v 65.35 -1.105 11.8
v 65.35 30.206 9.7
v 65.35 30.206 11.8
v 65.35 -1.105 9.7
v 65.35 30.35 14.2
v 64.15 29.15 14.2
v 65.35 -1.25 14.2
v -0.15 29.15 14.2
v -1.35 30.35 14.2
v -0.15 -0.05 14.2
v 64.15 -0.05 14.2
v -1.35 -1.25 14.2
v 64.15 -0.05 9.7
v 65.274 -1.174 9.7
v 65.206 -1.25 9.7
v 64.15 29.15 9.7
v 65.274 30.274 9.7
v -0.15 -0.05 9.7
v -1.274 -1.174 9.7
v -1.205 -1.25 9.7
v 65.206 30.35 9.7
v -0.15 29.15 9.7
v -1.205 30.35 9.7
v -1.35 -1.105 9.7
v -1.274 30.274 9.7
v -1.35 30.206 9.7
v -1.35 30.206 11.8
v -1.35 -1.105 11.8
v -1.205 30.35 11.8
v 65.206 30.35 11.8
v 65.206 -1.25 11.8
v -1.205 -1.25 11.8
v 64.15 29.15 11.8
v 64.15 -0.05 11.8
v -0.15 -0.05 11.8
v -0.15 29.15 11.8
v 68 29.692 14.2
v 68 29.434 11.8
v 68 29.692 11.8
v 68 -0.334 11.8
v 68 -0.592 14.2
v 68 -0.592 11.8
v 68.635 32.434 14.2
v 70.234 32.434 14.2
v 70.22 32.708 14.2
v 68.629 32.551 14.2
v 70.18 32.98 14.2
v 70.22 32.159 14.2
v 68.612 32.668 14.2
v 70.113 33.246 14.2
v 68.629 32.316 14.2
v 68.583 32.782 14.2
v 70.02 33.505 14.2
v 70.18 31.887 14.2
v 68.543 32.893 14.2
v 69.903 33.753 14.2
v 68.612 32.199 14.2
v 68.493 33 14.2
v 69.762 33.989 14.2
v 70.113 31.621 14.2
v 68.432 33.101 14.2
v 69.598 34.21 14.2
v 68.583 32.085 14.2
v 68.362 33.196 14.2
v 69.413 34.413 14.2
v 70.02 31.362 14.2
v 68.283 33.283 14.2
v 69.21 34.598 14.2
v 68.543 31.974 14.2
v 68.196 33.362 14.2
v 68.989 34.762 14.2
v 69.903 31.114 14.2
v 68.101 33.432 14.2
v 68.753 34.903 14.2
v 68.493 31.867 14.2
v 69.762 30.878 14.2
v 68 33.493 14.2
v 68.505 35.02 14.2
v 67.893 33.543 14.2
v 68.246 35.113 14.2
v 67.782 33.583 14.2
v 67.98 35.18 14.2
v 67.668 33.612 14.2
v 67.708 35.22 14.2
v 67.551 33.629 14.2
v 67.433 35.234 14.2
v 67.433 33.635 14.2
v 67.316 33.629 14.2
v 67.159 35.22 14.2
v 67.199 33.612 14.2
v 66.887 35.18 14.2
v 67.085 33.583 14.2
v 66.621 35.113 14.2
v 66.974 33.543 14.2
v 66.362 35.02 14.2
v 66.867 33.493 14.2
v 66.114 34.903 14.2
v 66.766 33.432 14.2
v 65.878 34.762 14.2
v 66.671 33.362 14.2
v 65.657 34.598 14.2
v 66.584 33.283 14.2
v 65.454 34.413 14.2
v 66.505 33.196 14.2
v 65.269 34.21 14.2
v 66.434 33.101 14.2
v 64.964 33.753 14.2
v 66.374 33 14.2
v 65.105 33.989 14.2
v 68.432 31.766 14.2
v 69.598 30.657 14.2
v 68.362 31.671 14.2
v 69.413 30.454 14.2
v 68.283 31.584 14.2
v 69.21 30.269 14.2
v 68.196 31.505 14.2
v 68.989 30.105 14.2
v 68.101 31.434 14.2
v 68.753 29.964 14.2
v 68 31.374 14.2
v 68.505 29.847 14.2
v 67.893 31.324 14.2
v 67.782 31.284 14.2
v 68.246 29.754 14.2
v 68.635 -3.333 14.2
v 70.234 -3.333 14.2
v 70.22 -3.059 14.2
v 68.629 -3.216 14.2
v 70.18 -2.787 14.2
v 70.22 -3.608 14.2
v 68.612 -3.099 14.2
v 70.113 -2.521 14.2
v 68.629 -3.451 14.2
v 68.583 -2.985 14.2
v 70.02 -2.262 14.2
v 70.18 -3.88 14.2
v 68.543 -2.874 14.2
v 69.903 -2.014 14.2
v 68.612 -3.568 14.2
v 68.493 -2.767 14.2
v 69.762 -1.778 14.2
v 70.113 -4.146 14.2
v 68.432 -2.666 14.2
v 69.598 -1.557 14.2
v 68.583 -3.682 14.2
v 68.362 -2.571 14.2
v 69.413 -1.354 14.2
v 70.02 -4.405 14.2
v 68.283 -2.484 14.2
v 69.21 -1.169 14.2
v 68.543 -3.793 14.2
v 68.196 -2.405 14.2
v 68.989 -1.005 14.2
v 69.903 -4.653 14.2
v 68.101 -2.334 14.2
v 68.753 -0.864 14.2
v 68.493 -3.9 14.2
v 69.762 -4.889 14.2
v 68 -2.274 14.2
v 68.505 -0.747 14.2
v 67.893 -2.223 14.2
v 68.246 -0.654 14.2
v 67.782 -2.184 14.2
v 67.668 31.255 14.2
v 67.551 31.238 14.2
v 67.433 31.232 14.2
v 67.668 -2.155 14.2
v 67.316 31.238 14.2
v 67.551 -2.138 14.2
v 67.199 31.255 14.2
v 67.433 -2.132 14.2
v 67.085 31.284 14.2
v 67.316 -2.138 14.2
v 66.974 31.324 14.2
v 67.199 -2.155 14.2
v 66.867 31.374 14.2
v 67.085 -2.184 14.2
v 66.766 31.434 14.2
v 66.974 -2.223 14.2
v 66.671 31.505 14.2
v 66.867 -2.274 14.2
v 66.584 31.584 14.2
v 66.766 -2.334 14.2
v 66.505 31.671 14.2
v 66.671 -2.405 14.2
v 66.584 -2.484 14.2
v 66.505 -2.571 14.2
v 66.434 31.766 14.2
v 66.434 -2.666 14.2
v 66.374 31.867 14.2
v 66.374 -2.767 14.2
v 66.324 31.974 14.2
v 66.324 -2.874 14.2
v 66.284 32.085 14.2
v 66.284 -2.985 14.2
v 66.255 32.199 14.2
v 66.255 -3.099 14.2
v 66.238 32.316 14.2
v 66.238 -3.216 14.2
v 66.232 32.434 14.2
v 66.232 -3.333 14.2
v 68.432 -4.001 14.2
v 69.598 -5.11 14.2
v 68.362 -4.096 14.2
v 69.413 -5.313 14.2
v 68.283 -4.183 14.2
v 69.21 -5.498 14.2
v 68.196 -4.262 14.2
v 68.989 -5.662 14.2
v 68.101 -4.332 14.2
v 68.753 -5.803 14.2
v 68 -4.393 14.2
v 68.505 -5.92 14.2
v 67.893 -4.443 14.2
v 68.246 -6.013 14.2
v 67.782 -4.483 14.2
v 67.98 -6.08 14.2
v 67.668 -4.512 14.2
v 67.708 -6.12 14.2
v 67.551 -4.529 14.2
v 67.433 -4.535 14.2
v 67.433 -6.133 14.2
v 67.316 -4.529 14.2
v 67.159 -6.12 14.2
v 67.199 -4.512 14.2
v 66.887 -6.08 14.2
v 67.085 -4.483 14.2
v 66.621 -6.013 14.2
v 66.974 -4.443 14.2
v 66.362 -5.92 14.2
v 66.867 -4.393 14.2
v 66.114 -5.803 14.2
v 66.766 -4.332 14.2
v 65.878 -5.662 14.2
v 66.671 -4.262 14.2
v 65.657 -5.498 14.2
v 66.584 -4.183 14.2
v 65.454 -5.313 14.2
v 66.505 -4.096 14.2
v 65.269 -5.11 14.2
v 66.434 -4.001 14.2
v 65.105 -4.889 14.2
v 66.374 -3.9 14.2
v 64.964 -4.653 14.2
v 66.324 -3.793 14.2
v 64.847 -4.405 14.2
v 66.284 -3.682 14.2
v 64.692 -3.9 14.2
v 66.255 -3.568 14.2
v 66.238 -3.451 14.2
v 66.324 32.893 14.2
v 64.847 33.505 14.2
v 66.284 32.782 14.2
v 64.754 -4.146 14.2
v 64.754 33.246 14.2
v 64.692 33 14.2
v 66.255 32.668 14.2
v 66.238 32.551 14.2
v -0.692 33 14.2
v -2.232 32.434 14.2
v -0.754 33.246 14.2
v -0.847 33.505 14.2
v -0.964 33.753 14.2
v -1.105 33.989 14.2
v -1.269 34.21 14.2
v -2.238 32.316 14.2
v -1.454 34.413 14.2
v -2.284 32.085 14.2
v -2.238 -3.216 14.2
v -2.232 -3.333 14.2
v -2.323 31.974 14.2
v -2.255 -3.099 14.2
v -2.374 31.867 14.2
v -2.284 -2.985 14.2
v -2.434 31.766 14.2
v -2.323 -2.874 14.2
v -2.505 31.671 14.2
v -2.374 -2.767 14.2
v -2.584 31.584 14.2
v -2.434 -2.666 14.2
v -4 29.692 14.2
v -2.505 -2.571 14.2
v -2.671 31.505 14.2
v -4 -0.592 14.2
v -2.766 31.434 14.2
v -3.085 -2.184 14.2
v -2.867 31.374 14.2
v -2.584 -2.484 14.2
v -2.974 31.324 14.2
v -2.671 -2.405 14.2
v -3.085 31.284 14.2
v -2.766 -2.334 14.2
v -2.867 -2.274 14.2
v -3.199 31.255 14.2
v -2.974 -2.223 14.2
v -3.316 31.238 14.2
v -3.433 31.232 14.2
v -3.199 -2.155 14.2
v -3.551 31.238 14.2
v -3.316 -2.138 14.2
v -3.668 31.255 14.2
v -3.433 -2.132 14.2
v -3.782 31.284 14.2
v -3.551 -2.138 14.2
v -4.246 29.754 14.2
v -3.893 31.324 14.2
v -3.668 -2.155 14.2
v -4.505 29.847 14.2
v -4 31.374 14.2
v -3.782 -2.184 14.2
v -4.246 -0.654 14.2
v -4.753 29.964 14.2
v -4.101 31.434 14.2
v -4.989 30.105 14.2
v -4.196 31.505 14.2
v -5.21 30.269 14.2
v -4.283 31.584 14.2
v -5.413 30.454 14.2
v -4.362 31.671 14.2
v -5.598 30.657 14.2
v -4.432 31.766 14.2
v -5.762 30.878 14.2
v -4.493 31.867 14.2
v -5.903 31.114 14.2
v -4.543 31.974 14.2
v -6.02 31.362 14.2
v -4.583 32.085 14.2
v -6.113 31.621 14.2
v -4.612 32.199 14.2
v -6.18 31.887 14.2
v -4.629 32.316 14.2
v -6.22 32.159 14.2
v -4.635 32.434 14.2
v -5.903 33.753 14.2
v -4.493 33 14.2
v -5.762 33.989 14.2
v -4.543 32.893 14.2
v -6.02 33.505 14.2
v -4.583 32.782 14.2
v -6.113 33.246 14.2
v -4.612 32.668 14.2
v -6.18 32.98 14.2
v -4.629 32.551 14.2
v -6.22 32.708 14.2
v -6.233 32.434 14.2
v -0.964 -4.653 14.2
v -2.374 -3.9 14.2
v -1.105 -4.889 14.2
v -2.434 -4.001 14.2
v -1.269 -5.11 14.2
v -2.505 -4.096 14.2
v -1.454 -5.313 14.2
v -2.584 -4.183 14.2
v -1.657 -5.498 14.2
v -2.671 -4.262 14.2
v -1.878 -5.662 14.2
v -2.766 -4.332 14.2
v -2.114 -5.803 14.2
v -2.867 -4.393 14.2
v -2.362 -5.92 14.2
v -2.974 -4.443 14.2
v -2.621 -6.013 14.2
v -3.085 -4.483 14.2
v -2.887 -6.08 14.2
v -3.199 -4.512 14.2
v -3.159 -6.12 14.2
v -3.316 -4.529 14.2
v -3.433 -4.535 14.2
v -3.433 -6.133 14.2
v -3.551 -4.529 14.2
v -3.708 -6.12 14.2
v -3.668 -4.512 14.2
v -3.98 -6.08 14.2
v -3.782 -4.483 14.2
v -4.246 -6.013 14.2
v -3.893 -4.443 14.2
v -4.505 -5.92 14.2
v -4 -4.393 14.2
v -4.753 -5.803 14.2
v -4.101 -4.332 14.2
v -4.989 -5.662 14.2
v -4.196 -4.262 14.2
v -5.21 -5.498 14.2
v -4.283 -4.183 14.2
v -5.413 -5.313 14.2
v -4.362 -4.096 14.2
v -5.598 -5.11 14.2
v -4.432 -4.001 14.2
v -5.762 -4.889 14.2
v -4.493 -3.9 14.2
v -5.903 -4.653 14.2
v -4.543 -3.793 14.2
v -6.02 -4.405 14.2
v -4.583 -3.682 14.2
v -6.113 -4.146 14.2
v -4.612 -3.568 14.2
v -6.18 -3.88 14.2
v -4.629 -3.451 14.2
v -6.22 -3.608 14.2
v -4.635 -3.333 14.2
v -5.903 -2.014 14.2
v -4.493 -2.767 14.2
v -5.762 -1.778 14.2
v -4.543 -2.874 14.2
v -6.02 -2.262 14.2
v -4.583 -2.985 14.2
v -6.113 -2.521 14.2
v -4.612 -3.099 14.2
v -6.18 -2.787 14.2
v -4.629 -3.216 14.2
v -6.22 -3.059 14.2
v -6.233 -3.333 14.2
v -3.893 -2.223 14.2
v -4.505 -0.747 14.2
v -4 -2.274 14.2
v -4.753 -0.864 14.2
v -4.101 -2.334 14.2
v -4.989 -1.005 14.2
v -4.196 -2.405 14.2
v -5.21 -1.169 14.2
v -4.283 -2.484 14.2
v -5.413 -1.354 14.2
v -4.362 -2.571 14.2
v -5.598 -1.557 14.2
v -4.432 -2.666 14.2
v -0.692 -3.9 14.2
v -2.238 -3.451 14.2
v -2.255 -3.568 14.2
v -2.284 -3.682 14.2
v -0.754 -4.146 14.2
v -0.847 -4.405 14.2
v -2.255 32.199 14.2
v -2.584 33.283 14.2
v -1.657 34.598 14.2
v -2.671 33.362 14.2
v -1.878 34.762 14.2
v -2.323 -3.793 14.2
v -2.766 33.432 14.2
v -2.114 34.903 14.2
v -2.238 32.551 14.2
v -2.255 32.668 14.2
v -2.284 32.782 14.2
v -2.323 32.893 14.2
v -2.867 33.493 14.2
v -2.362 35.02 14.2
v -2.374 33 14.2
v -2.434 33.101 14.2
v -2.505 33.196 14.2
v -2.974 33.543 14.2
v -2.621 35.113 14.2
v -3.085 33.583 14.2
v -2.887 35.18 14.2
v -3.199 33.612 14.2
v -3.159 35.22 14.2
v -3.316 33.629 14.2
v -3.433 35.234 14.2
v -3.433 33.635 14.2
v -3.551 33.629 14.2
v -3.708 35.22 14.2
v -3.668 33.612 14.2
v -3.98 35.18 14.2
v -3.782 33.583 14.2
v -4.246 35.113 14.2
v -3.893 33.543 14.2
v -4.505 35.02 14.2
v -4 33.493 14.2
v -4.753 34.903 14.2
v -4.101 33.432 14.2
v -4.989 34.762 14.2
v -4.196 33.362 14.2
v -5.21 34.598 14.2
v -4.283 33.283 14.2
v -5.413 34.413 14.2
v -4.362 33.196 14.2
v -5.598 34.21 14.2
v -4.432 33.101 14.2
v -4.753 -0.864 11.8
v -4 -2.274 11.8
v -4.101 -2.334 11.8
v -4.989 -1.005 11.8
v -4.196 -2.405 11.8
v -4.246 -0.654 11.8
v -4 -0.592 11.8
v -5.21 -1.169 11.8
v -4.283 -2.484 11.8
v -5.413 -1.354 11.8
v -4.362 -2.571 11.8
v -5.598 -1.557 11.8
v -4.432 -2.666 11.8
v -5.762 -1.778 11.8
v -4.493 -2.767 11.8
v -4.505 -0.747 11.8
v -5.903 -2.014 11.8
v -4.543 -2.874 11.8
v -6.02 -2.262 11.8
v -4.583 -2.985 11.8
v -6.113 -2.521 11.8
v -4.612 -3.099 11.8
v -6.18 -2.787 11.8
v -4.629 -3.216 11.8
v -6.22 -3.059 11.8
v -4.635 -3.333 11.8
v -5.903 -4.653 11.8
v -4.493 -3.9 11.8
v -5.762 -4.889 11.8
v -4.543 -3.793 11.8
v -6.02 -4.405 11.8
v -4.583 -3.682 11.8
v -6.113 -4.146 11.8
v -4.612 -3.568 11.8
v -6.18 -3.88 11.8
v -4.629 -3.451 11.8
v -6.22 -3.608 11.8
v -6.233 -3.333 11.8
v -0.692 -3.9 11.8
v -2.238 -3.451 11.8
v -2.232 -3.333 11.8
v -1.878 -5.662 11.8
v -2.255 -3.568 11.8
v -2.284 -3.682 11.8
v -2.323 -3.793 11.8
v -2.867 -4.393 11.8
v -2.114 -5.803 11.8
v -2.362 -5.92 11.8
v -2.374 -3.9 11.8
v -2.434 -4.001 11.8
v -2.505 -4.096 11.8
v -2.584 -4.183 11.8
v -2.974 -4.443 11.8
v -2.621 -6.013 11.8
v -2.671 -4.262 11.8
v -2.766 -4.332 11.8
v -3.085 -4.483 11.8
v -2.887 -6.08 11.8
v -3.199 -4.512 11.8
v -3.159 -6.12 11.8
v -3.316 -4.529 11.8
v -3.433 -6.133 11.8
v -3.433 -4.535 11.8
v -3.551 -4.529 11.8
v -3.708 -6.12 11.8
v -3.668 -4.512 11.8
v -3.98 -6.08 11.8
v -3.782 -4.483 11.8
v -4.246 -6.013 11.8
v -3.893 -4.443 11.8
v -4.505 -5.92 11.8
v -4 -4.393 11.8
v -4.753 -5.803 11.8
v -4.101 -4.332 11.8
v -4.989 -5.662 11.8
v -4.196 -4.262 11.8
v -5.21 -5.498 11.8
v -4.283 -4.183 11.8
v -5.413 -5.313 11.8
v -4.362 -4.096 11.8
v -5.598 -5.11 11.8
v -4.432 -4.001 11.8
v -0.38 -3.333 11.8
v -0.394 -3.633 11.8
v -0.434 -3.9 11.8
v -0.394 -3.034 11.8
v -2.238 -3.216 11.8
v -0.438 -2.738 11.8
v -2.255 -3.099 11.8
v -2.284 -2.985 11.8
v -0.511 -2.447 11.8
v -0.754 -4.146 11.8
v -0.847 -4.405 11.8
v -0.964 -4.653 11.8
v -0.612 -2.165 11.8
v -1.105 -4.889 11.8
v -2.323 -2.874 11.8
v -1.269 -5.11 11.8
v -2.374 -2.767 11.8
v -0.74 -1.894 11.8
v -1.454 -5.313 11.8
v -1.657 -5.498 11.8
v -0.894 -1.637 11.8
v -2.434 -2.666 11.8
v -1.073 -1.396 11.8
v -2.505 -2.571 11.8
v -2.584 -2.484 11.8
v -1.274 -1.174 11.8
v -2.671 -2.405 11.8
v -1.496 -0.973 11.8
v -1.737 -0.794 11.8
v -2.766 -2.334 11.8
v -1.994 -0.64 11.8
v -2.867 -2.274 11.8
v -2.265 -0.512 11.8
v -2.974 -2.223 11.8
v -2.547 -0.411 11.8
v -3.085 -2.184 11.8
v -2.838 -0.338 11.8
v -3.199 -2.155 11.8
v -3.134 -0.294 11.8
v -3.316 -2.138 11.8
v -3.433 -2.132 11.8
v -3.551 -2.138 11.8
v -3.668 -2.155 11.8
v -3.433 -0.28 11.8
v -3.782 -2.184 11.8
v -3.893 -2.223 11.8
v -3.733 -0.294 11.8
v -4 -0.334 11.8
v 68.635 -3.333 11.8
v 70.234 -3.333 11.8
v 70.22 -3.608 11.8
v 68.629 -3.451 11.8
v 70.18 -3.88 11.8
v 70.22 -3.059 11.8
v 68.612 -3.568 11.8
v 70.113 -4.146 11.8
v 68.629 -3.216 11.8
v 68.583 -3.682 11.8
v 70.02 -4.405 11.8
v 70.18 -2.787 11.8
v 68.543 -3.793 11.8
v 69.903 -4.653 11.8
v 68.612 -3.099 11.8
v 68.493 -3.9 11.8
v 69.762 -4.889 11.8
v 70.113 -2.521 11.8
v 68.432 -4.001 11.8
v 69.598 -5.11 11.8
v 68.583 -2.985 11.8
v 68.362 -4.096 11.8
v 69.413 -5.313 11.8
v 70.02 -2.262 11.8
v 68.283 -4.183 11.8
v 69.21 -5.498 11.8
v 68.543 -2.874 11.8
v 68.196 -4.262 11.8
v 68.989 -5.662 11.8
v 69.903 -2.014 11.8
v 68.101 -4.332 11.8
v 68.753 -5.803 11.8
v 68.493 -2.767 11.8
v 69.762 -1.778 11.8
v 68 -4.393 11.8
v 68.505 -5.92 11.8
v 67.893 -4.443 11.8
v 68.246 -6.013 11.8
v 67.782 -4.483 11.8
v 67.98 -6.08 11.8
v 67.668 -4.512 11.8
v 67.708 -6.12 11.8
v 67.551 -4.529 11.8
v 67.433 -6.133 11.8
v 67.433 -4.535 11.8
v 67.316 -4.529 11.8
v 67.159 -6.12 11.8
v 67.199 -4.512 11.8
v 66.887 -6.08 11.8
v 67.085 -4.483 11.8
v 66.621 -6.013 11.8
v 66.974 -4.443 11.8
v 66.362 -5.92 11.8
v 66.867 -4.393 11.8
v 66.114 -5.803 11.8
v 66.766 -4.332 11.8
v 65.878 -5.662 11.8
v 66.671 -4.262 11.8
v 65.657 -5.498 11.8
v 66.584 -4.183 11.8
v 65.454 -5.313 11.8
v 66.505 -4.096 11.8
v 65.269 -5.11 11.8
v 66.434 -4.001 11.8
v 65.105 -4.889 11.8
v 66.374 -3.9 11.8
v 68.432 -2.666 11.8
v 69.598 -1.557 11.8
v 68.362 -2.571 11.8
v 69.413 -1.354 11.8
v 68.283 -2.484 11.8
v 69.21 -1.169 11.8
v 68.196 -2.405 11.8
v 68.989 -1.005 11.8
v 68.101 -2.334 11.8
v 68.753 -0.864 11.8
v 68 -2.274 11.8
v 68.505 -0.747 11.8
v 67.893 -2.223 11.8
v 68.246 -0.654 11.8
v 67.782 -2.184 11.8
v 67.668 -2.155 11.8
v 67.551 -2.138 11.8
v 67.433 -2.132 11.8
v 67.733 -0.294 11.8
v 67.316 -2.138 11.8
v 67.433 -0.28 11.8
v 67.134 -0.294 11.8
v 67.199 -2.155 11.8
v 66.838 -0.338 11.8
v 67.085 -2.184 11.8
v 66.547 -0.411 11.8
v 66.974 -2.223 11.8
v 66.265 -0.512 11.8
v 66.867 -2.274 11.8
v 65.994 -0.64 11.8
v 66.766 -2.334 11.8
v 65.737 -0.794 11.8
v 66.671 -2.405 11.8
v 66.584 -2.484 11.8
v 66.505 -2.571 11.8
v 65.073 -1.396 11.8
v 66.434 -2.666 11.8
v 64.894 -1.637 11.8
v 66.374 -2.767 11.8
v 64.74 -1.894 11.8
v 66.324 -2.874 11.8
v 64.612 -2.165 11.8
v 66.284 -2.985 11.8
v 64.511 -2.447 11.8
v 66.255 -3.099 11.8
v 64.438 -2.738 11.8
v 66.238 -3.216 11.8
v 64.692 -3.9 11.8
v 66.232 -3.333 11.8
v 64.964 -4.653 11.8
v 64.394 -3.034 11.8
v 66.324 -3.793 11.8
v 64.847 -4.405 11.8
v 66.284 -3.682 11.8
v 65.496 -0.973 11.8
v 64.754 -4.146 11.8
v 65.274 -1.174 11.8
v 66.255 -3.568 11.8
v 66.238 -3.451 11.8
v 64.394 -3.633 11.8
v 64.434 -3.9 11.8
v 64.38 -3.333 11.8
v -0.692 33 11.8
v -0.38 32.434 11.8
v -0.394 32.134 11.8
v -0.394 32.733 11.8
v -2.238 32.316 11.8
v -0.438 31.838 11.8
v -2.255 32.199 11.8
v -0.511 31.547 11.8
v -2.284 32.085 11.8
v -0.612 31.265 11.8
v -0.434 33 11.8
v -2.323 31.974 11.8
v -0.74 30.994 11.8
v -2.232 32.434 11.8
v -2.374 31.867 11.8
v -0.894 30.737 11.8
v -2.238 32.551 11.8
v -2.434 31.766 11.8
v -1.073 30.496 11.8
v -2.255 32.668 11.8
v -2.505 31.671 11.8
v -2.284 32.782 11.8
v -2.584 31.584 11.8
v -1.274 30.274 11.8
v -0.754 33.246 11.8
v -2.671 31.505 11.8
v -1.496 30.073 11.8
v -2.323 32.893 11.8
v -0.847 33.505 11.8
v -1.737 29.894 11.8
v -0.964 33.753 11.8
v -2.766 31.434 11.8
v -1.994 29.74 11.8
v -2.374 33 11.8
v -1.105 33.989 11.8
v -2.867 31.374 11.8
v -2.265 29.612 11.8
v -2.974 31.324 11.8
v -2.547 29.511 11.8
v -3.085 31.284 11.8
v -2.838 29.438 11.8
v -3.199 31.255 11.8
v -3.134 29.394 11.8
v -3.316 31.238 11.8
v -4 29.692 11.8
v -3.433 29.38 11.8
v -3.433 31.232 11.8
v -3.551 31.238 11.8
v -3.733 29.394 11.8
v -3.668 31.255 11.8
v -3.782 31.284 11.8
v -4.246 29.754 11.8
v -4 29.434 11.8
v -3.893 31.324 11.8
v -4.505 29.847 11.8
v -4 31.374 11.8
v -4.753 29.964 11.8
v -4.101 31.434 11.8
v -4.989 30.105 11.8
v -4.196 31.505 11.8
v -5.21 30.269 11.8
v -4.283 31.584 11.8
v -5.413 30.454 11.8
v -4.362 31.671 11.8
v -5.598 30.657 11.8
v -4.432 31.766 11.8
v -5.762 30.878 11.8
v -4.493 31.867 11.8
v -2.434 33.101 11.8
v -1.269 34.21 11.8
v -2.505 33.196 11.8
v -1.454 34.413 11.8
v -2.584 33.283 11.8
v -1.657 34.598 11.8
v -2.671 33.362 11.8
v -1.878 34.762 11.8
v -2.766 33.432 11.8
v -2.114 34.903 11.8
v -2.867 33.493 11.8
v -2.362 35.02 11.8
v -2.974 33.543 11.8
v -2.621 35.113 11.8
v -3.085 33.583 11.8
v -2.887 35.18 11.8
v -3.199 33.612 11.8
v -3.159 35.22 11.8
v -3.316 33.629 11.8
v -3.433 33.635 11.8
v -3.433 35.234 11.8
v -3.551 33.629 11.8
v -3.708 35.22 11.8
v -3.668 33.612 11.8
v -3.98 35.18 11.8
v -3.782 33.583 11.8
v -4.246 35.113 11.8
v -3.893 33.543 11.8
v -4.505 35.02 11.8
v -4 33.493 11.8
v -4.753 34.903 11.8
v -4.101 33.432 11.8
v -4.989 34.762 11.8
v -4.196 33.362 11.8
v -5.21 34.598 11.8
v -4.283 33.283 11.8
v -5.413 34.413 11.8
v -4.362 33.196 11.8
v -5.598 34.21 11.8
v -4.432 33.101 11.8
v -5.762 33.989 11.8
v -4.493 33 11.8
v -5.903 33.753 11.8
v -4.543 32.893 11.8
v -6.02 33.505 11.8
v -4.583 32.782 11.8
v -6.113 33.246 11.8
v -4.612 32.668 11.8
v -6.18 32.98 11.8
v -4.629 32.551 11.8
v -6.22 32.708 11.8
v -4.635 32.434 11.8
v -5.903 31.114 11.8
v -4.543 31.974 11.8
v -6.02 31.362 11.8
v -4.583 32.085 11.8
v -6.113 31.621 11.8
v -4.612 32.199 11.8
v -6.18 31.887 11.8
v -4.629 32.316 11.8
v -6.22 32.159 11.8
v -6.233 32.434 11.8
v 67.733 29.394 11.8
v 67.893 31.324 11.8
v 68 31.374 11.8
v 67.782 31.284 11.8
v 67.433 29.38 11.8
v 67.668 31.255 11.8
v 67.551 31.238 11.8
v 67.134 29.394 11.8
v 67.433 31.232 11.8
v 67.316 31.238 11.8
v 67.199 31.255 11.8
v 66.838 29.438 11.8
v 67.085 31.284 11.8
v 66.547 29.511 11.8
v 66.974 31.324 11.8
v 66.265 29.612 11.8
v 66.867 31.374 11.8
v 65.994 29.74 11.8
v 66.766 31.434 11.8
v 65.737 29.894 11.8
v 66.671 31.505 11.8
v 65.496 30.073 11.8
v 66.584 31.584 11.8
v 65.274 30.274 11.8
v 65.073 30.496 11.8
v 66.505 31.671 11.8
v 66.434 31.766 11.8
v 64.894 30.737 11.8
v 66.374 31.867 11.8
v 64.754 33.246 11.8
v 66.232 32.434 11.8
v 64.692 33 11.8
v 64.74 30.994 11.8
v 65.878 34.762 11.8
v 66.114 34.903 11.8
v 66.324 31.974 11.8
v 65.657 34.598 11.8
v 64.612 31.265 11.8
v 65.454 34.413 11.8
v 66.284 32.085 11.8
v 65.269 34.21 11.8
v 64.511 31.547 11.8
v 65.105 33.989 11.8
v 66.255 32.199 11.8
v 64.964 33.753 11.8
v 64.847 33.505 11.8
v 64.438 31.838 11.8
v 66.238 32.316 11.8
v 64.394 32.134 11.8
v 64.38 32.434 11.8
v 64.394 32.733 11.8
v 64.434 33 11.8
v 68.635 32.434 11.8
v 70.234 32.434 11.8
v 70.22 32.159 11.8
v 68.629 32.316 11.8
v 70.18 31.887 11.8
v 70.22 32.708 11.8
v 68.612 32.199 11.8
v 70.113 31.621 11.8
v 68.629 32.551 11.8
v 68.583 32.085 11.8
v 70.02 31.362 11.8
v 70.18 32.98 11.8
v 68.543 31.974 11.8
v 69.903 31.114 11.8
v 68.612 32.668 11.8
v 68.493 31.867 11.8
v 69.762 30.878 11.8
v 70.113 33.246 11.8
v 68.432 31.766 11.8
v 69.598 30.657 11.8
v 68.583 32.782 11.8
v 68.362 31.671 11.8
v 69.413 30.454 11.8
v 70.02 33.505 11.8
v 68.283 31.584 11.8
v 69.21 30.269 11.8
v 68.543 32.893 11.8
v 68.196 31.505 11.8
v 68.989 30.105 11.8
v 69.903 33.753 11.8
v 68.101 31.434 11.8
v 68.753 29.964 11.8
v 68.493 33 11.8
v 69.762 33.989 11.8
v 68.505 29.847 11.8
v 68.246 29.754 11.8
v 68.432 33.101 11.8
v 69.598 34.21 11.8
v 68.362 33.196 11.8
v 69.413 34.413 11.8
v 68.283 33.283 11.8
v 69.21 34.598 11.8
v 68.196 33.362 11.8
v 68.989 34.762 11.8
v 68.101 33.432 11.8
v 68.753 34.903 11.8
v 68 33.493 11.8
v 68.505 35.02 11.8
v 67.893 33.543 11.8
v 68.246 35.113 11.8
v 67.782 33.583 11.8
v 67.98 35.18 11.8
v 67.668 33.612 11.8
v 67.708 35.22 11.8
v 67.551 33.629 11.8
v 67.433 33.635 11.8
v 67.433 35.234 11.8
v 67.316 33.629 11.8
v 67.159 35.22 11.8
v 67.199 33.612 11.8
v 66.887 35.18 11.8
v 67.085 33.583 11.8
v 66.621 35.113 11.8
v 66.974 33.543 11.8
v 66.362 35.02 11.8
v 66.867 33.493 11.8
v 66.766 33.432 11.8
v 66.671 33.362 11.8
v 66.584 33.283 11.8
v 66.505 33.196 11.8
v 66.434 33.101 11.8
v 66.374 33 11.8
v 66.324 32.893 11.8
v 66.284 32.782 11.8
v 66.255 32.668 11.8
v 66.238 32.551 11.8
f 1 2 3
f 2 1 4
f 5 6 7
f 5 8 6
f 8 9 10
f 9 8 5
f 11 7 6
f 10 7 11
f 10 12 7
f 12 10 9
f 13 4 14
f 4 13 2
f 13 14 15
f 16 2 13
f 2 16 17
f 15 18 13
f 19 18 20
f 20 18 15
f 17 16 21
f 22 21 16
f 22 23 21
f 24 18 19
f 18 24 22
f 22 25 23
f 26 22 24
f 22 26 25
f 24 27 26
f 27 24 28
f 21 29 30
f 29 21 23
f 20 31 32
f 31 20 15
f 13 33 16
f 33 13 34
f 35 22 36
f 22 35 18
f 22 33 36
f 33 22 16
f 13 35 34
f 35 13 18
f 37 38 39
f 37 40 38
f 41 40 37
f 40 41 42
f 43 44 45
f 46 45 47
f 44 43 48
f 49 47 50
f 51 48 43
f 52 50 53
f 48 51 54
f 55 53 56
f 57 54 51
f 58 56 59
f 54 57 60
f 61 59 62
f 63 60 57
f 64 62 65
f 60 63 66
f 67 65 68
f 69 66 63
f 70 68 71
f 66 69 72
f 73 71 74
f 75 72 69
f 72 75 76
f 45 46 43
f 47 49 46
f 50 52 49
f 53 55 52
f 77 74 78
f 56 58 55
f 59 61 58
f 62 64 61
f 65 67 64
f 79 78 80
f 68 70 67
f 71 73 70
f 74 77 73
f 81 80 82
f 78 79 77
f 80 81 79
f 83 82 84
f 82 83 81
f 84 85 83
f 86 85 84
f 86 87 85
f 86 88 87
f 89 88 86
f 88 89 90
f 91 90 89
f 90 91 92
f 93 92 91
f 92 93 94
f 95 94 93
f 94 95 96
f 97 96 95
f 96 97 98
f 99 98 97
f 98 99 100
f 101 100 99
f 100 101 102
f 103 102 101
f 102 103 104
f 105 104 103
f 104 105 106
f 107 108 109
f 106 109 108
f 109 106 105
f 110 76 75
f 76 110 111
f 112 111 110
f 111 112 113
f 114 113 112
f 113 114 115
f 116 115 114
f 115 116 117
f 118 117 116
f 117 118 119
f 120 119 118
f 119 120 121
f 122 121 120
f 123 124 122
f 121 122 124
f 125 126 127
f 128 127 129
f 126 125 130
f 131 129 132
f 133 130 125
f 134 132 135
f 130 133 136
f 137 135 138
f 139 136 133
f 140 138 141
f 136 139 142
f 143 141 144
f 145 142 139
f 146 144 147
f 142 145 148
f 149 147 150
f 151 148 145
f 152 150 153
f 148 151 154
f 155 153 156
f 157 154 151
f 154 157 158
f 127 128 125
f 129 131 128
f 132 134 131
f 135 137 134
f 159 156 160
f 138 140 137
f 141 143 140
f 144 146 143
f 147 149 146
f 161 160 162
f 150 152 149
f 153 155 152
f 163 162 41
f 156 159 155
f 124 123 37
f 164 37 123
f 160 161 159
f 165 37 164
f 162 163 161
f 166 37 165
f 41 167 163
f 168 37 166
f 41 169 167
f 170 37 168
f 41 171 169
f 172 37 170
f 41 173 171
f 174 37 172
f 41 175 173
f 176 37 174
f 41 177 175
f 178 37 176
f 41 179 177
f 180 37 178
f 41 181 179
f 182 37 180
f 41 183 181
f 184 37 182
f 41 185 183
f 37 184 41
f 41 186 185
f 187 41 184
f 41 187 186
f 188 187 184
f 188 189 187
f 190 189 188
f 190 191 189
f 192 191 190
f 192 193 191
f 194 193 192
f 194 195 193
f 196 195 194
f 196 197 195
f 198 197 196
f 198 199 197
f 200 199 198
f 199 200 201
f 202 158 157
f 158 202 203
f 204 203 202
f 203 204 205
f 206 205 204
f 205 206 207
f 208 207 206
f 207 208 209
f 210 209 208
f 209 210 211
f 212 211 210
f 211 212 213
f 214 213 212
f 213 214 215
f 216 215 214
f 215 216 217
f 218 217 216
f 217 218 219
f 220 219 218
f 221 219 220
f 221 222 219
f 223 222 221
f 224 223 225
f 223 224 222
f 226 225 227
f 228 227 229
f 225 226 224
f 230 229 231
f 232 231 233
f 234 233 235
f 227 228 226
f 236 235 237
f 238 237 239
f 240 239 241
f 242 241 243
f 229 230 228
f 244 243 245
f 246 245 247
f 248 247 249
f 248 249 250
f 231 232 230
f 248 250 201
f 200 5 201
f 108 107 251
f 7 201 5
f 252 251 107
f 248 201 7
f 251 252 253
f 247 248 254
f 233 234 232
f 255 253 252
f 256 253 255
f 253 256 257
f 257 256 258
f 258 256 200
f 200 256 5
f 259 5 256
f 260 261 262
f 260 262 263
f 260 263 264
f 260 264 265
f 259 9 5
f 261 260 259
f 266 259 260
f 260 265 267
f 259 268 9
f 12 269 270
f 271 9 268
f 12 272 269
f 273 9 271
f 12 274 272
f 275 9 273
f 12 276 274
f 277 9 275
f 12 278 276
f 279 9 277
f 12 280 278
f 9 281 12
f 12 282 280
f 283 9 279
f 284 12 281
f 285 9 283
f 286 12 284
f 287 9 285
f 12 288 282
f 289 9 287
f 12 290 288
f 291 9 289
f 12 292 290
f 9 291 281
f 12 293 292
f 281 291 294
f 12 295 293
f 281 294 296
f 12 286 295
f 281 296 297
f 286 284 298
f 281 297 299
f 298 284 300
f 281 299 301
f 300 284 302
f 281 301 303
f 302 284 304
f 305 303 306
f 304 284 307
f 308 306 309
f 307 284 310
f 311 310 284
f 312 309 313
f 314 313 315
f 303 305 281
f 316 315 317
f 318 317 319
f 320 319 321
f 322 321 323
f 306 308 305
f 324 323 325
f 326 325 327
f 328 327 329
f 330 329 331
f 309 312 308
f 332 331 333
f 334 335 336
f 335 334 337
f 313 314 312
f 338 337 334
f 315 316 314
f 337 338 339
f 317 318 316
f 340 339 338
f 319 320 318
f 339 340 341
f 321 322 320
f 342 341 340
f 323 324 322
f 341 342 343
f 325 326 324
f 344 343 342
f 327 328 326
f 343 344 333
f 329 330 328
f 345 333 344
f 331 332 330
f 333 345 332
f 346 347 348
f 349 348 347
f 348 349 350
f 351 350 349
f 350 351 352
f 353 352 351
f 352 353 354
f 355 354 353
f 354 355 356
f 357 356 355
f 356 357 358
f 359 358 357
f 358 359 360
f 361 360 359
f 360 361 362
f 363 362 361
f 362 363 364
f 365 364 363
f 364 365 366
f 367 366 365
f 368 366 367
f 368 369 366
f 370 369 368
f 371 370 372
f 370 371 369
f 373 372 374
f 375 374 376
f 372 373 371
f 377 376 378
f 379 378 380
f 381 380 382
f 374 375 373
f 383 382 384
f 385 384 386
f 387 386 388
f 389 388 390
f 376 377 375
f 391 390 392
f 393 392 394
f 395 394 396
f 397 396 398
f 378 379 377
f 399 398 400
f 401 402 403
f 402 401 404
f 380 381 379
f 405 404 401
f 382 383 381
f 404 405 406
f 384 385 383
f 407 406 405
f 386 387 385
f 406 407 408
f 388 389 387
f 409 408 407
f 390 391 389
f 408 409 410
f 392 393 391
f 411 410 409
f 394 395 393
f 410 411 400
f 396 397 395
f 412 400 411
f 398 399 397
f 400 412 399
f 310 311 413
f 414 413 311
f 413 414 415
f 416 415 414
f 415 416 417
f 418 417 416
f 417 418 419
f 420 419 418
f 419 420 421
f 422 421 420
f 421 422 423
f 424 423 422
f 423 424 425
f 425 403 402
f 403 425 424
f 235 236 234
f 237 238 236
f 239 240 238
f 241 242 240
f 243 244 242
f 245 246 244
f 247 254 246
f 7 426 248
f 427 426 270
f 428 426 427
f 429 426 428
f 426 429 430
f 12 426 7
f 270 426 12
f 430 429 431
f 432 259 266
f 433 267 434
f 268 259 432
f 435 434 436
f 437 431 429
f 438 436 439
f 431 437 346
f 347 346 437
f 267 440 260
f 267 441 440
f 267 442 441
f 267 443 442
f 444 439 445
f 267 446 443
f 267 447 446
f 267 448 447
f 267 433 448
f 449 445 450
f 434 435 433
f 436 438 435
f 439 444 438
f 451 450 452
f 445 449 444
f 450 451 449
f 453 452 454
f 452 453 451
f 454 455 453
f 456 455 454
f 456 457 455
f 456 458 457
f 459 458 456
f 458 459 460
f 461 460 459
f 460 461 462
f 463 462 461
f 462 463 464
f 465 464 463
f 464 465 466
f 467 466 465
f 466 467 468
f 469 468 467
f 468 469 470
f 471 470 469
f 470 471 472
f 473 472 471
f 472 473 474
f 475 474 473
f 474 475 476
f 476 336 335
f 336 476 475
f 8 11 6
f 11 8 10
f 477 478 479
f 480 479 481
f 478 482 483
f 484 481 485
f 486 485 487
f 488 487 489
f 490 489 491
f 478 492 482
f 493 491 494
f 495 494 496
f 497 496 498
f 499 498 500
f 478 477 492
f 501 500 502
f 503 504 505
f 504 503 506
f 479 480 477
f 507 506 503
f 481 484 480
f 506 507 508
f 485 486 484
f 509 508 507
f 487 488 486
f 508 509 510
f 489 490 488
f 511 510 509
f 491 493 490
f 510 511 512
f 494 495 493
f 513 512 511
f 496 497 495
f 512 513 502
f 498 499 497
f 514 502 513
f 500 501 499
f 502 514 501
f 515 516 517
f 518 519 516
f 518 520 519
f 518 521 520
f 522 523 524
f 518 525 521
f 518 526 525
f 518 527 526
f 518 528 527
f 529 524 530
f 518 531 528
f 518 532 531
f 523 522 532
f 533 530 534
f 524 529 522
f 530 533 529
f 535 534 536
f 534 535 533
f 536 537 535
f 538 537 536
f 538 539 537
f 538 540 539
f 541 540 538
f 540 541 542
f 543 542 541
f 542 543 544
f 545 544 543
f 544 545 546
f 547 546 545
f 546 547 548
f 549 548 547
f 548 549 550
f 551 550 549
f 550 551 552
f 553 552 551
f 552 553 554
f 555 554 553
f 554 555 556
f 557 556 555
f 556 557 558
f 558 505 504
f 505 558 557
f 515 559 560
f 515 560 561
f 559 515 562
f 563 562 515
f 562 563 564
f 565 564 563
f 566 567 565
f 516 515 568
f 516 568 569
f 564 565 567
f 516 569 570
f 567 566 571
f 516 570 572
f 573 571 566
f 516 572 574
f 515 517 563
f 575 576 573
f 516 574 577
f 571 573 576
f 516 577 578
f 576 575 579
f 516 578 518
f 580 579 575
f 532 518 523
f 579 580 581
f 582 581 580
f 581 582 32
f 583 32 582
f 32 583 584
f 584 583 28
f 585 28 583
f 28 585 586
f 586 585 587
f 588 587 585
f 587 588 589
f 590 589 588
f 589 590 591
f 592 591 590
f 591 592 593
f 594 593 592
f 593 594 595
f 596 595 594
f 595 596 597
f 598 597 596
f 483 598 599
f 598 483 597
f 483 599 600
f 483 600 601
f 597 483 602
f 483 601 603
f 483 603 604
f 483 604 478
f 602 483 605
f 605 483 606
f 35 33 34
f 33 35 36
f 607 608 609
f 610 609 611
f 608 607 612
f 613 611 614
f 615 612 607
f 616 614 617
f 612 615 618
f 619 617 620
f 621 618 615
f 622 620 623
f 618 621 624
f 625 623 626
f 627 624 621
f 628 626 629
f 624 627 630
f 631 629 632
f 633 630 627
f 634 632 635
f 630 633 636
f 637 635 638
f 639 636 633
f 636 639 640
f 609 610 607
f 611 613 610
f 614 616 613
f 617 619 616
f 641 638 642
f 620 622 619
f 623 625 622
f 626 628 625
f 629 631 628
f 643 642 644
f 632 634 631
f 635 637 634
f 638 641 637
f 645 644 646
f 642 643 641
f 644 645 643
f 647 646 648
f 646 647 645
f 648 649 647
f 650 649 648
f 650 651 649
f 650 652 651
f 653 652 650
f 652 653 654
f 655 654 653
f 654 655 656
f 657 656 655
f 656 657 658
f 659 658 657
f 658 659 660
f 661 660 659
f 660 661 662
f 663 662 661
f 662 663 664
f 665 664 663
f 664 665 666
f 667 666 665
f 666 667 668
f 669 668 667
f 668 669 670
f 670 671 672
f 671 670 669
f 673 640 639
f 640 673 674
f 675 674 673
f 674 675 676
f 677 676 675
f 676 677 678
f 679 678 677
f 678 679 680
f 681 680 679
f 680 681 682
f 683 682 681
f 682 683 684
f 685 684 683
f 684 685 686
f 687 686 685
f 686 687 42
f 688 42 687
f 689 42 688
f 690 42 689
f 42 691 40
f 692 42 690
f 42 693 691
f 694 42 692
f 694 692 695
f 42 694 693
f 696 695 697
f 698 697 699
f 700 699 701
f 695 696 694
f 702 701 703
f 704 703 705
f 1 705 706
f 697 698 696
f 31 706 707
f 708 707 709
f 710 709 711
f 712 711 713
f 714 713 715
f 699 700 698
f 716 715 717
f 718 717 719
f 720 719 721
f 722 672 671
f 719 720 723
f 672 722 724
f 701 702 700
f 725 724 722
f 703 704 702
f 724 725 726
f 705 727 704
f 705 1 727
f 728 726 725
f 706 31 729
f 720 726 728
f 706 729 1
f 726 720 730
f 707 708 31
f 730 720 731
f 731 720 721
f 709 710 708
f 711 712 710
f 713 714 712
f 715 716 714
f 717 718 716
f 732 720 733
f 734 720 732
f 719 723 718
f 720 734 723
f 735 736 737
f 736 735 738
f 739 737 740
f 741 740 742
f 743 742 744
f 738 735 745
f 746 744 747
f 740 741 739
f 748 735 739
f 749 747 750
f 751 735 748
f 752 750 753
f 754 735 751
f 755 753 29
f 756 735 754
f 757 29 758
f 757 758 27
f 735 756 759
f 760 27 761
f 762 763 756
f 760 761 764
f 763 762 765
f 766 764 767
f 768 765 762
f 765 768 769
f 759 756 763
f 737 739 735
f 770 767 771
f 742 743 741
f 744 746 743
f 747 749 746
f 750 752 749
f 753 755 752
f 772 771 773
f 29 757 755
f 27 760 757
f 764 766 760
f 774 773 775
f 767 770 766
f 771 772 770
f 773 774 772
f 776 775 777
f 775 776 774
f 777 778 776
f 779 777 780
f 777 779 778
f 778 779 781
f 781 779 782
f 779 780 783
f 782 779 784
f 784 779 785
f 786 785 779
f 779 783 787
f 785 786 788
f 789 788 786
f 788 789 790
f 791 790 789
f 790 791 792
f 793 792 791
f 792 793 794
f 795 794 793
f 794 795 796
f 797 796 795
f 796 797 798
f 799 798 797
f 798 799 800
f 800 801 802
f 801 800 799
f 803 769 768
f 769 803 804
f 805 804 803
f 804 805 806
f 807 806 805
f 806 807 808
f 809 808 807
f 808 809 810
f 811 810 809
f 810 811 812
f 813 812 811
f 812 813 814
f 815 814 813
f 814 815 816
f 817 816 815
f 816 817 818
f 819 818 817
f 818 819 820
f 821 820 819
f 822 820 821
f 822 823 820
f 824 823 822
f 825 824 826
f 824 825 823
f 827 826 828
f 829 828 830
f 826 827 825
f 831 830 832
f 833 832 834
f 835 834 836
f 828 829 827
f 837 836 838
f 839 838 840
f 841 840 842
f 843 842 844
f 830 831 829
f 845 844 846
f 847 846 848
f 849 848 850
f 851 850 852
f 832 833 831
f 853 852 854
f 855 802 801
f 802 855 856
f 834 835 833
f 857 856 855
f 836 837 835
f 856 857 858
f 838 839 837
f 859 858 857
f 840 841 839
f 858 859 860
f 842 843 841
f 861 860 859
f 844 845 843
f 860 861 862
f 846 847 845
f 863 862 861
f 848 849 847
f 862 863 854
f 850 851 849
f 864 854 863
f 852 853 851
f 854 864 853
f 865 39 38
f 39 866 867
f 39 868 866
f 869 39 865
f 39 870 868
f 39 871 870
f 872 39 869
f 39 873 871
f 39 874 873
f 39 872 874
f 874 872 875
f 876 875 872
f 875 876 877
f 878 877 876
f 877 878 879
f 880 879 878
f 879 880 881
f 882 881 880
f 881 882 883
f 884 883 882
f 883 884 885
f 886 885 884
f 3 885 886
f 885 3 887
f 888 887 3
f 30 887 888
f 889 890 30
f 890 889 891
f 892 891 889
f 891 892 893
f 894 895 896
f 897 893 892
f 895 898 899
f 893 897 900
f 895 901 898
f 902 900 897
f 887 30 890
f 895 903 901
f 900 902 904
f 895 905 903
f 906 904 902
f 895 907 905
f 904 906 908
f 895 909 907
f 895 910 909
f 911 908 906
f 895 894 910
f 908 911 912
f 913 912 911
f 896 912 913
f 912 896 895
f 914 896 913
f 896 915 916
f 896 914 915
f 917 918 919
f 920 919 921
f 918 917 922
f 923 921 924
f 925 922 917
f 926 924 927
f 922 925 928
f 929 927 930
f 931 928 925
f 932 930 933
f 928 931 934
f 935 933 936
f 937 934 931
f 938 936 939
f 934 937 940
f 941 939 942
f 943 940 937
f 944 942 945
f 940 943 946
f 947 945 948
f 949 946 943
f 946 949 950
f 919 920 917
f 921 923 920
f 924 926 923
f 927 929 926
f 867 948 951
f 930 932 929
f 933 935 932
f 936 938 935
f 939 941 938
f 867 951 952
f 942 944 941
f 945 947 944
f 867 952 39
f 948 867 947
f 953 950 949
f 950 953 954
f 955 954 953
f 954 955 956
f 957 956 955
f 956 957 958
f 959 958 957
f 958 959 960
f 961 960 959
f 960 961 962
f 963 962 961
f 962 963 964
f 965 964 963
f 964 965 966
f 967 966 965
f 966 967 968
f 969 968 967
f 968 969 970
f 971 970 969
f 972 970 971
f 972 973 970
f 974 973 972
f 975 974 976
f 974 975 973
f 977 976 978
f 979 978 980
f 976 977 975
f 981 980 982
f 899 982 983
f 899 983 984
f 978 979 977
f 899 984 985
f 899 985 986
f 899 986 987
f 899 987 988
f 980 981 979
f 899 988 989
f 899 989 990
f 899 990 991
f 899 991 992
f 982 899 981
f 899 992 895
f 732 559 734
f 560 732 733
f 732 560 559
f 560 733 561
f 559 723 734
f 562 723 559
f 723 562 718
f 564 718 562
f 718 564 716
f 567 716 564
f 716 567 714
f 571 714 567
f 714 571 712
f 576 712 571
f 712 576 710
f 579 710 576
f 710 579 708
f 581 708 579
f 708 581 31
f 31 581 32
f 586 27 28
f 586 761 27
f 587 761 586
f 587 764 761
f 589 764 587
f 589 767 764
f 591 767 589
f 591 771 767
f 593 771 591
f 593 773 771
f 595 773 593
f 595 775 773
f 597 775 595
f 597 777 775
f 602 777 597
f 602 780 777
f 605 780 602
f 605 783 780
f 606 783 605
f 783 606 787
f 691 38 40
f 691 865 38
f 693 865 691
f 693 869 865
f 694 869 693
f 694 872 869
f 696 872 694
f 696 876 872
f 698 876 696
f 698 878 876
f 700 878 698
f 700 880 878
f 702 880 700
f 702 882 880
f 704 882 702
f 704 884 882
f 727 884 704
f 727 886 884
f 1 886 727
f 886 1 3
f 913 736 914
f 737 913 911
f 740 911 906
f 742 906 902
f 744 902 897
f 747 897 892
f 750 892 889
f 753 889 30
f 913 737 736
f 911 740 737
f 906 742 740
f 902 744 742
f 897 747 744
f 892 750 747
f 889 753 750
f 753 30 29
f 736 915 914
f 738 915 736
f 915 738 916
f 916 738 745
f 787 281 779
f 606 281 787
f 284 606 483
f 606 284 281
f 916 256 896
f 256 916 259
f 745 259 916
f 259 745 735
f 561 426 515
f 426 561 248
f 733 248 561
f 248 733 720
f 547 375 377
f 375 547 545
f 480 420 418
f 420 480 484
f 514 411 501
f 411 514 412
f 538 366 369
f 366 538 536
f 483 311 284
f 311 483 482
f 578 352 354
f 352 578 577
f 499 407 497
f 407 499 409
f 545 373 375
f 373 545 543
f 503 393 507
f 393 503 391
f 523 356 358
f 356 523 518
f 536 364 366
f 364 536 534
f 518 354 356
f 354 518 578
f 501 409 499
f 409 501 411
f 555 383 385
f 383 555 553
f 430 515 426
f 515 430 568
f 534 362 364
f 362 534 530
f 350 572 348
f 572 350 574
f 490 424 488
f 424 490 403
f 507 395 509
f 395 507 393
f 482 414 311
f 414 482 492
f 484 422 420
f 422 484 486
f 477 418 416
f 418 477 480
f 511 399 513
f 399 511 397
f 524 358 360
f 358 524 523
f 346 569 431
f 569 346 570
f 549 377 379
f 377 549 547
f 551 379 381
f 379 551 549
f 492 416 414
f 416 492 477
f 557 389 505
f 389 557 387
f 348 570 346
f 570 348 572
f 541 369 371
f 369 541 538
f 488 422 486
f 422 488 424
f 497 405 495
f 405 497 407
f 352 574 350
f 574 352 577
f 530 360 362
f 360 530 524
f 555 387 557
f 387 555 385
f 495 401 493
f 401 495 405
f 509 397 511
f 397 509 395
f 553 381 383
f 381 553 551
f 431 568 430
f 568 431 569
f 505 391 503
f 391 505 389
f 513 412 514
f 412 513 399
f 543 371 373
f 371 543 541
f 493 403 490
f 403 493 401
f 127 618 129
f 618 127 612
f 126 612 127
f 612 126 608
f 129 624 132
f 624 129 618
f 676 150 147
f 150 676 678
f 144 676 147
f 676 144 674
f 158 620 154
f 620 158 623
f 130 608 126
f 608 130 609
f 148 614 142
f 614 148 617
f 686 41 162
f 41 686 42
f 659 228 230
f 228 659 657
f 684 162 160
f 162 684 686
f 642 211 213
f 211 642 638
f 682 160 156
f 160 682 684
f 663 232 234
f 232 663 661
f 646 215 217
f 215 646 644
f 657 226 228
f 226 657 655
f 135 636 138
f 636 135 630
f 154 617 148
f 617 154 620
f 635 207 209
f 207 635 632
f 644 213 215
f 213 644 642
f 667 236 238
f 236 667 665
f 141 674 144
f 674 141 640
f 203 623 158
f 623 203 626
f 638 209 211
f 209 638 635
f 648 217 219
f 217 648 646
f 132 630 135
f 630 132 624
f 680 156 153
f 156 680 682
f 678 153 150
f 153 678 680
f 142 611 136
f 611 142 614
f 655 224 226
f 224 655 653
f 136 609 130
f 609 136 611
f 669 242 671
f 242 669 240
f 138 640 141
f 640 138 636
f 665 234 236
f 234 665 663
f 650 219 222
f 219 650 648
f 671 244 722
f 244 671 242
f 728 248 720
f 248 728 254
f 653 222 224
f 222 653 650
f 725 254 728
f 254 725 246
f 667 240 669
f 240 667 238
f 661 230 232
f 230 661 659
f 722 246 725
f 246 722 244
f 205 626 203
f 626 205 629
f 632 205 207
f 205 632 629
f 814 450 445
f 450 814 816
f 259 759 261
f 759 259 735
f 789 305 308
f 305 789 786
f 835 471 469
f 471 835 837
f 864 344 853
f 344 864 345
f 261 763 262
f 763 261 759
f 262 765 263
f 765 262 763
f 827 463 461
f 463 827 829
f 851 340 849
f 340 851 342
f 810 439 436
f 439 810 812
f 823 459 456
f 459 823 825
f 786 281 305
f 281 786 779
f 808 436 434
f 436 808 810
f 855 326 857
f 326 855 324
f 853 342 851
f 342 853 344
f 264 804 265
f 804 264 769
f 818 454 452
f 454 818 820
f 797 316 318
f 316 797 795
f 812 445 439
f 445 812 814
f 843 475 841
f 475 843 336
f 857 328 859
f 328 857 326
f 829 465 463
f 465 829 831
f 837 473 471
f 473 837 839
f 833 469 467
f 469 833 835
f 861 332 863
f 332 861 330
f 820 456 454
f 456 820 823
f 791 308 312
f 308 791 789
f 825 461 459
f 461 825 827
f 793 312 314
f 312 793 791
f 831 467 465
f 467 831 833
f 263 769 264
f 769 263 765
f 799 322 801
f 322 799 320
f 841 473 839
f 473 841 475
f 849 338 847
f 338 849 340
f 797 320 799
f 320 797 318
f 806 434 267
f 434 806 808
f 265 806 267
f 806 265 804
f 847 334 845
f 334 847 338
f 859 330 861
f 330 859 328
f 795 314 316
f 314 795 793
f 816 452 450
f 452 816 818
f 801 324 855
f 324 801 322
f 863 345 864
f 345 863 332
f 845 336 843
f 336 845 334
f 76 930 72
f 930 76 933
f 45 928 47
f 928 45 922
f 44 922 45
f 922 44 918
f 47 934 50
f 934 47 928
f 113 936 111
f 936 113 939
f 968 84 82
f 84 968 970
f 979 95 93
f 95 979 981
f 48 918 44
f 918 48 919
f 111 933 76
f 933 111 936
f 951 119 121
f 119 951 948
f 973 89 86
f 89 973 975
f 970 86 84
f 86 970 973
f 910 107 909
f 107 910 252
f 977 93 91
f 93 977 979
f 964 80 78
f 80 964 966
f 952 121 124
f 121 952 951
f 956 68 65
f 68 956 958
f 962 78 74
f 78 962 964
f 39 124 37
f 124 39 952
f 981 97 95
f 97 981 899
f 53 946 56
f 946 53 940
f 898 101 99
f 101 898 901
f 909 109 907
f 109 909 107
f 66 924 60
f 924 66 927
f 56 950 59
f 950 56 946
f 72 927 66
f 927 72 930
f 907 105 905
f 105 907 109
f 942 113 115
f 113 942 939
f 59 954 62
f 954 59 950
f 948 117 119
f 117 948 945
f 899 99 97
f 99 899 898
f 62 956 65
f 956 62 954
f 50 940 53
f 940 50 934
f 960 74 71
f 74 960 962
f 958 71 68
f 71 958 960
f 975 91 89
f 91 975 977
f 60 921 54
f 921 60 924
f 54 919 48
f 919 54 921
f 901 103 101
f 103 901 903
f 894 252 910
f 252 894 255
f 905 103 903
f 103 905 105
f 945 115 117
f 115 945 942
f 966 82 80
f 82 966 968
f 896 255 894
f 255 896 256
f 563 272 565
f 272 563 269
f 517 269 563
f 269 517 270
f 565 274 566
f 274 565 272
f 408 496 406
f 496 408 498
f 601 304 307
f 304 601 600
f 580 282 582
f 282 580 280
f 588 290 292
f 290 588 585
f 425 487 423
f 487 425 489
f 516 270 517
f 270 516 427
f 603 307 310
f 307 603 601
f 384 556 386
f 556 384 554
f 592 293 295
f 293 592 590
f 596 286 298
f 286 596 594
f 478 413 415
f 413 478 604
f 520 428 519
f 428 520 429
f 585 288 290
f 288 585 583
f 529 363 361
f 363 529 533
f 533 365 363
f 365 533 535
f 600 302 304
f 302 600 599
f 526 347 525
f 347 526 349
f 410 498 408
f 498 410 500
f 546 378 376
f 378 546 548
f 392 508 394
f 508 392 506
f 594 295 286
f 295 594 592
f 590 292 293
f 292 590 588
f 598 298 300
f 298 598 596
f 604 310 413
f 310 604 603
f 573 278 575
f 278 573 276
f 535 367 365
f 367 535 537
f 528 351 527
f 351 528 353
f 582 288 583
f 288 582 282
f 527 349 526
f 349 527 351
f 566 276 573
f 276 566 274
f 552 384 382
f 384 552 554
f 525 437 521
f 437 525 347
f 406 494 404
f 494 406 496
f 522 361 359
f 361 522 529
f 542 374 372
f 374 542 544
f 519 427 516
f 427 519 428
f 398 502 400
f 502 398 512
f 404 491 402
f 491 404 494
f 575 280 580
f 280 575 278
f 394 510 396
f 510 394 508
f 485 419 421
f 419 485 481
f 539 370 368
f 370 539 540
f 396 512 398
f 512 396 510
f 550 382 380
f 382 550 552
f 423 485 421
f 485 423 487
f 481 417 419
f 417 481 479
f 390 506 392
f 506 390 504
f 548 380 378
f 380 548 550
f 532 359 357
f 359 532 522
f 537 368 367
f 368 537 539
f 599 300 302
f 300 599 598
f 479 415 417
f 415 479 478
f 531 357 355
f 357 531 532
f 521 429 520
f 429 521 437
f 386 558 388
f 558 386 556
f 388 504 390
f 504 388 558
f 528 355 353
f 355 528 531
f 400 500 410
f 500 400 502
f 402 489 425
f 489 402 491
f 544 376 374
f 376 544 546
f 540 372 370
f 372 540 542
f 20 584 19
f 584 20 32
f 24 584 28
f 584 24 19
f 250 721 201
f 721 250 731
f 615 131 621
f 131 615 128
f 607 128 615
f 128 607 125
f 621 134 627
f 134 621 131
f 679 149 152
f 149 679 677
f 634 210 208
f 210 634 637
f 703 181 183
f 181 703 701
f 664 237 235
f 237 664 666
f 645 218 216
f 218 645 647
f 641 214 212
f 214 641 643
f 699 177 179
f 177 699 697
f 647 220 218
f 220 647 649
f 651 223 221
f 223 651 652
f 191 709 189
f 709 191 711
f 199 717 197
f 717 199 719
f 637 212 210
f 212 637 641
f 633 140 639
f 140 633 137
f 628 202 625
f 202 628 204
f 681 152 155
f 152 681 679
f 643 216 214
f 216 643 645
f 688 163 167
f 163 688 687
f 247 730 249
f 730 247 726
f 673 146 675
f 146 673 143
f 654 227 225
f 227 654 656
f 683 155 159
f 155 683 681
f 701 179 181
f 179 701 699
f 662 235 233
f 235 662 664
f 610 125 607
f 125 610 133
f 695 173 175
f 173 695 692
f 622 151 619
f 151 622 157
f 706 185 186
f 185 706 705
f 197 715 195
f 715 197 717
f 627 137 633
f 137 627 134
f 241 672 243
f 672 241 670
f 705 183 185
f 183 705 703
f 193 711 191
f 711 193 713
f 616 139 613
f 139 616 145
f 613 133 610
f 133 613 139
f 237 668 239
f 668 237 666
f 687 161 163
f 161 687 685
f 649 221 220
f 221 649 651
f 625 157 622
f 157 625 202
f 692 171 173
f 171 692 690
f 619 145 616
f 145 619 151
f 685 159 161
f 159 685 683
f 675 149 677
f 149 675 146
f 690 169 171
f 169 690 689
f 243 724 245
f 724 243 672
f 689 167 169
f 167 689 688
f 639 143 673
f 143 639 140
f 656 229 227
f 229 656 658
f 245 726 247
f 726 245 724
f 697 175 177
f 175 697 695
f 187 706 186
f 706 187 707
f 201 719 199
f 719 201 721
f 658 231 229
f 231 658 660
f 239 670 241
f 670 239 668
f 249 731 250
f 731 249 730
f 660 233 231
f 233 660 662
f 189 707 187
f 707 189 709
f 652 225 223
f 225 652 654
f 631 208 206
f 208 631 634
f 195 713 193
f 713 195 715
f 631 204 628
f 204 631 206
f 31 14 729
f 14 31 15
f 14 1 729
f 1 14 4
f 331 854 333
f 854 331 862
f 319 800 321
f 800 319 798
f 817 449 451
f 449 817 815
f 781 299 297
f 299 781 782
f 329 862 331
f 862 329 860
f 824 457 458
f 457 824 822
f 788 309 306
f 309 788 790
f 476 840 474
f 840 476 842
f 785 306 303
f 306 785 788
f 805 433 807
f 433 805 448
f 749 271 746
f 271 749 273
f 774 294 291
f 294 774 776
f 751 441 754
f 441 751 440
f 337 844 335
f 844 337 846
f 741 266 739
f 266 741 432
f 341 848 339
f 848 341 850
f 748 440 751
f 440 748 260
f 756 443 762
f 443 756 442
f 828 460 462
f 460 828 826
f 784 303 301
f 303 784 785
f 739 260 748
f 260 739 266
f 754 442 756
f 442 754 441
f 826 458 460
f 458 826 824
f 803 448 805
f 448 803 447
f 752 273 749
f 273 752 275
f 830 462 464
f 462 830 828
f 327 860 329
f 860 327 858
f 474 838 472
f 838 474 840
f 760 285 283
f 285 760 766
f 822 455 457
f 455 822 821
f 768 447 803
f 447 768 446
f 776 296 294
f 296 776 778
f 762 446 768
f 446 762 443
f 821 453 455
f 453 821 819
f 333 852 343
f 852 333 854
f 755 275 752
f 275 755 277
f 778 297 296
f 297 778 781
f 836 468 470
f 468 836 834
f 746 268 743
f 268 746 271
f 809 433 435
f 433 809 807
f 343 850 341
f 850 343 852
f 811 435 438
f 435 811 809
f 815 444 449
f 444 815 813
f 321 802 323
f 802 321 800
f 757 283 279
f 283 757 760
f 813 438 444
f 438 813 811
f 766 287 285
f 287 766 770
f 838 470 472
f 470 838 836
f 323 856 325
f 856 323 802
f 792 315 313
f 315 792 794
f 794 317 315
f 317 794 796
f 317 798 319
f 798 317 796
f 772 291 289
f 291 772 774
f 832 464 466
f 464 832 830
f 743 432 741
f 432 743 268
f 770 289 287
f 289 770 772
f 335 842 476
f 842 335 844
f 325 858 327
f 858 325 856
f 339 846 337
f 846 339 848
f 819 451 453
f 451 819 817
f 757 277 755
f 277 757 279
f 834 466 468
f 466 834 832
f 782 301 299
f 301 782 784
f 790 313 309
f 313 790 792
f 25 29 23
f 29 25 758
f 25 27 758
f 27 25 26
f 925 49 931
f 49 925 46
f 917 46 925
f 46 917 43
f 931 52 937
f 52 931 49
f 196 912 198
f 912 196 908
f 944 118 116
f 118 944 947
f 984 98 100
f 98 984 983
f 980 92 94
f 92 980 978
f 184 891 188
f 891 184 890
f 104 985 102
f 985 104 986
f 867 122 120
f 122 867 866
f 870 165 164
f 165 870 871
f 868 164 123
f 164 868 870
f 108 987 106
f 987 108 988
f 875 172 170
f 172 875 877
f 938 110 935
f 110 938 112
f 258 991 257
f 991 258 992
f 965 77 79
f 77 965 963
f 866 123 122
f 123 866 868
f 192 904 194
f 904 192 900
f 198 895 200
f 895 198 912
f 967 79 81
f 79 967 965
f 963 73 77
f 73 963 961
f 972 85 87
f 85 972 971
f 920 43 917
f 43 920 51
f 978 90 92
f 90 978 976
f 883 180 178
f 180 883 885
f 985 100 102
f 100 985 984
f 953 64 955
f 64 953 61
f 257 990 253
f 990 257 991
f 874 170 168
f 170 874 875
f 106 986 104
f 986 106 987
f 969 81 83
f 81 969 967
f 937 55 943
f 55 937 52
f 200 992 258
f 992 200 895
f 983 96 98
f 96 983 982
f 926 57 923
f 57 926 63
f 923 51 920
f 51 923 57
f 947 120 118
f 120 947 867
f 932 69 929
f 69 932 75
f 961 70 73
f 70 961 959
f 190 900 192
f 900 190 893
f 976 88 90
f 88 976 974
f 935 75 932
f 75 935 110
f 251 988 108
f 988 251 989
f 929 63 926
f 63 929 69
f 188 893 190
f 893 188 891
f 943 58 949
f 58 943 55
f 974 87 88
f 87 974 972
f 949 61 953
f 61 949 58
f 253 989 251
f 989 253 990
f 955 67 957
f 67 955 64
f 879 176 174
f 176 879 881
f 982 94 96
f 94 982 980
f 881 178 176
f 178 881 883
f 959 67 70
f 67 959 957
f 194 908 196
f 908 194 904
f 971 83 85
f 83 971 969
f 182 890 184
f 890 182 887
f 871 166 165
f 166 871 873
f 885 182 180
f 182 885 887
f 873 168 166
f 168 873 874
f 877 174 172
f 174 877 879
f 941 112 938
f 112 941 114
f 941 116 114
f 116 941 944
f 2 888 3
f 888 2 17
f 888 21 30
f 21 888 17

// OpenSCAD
// body lid
difference() {
  union() {
    // body lid (lid_plate)
    multmatrix([[1, 0, 0, 32], [0, 1, 0, 14.55], [0, 0, 1, 11.8], [0, 0, 0, 1]]) translate([-36, -18.45, 0]) cube([72, 36.9, 2.4]);
    // add lid_lip (lip)
    multmatrix([[1, 0, 0, 32], [0, 1, 0, 14.55], [0, 0, 1, 9.7], [0, 0, 0, 1]]) difference() { translate([-33.35, -15.8, 0]) cube([66.7, 31.6, 4.5]); translate([0, 0, -1]) translate([-32.15, -14.6, 0]) cube([64.3, 29.2, 6.5]); }
    // add boss_1_pad (pad)
    multmatrix([[1, 0, 0, -3.433452], [0, 1, 0, -3.333452], [0, 0, 1, 11.8], [0, 0, 0, 1]]) cylinder(h=2.4, d=5.6, $fn=64);
    // add boss_2_pad (pad)
    multmatrix([[1, 0, 0, 67.433452], [0, 1, 0, -3.333452], [0, 0, 1, 11.8], [0, 0, 0, 1]]) cylinder(h=2.4, d=5.6, $fn=64);
    // add boss_3_pad (pad)
    multmatrix([[1, 0, 0, -3.433452], [0, 1, 0, 32.433452], [0, 0, 1, 11.8], [0, 0, 0, 1]]) cylinder(h=2.4, d=5.6, $fn=64);
    // add boss_4_pad (pad)
    multmatrix([[1, 0, 0, 67.433452], [0, 1, 0, 32.433452], [0, 0, 1, 11.8], [0, 0, 0, 1]]) cylinder(h=2.4, d=5.6, $fn=64);
  }
  // cut boss_1_lid_hole (screw_hole)
  multmatrix([[1, 0, 0, -3.433452], [0, 1, 0, -3.333452], [0, 0, 1, 10.8], [0, 0, 0, 1]]) cylinder(h=4.4, d=2.402894, $fn=64);
  // cut boss_1_lip_notch (lip_notch)
  multmatrix([[1, 0, 0, -3.433452], [0, 1, 0, -3.333452], [0, 0, 1, 8.7], [0, 0, 0, 1]]) cylinder(h=3.1, d=6.107357, $fn=64);
  // cut boss_2_lid_hole (screw_hole)
  multmatrix([[1, 0, 0, 67.433452], [0, 1, 0, -3.333452], [0, 0, 1, 10.8], [0, 0, 0, 1]]) cylinder(h=4.4, d=2.402894, $fn=64);
  // cut boss_2_lip_notch (lip_notch)
  multmatrix([[1, 0, 0, 67.433452], [0, 1, 0, -3.333452], [0, 0, 1, 8.7], [0, 0, 0, 1]]) cylinder(h=3.1, d=6.107357, $fn=64);
  // cut boss_3_lid_hole (screw_hole)
  multmatrix([[1, 0, 0, -3.433452], [0, 1, 0, 32.433452], [0, 0, 1, 10.8], [0, 0, 0, 1]]) cylinder(h=4.4, d=2.402894, $fn=64);
  // cut boss_3_lip_notch (lip_notch)
  multmatrix([[1, 0, 0, -3.433452], [0, 1, 0, 32.433452], [0, 0, 1, 8.7], [0, 0, 0, 1]]) cylinder(h=3.1, d=6.107357, $fn=64);
  // cut boss_4_lid_hole (screw_hole)
  multmatrix([[1, 0, 0, 67.433452], [0, 1, 0, 32.433452], [0, 0, 1, 10.8], [0, 0, 0, 1]]) cylinder(h=4.4, d=2.402894, $fn=64);
  // cut boss_4_lip_notch (lip_notch)
  multmatrix([[1, 0, 0, 67.433452], [0, 1, 0, 32.433452], [0, 0, 1, 8.7], [0, 0, 0, 1]]) cylinder(h=3.1, d=6.107357, $fn=64);
}
